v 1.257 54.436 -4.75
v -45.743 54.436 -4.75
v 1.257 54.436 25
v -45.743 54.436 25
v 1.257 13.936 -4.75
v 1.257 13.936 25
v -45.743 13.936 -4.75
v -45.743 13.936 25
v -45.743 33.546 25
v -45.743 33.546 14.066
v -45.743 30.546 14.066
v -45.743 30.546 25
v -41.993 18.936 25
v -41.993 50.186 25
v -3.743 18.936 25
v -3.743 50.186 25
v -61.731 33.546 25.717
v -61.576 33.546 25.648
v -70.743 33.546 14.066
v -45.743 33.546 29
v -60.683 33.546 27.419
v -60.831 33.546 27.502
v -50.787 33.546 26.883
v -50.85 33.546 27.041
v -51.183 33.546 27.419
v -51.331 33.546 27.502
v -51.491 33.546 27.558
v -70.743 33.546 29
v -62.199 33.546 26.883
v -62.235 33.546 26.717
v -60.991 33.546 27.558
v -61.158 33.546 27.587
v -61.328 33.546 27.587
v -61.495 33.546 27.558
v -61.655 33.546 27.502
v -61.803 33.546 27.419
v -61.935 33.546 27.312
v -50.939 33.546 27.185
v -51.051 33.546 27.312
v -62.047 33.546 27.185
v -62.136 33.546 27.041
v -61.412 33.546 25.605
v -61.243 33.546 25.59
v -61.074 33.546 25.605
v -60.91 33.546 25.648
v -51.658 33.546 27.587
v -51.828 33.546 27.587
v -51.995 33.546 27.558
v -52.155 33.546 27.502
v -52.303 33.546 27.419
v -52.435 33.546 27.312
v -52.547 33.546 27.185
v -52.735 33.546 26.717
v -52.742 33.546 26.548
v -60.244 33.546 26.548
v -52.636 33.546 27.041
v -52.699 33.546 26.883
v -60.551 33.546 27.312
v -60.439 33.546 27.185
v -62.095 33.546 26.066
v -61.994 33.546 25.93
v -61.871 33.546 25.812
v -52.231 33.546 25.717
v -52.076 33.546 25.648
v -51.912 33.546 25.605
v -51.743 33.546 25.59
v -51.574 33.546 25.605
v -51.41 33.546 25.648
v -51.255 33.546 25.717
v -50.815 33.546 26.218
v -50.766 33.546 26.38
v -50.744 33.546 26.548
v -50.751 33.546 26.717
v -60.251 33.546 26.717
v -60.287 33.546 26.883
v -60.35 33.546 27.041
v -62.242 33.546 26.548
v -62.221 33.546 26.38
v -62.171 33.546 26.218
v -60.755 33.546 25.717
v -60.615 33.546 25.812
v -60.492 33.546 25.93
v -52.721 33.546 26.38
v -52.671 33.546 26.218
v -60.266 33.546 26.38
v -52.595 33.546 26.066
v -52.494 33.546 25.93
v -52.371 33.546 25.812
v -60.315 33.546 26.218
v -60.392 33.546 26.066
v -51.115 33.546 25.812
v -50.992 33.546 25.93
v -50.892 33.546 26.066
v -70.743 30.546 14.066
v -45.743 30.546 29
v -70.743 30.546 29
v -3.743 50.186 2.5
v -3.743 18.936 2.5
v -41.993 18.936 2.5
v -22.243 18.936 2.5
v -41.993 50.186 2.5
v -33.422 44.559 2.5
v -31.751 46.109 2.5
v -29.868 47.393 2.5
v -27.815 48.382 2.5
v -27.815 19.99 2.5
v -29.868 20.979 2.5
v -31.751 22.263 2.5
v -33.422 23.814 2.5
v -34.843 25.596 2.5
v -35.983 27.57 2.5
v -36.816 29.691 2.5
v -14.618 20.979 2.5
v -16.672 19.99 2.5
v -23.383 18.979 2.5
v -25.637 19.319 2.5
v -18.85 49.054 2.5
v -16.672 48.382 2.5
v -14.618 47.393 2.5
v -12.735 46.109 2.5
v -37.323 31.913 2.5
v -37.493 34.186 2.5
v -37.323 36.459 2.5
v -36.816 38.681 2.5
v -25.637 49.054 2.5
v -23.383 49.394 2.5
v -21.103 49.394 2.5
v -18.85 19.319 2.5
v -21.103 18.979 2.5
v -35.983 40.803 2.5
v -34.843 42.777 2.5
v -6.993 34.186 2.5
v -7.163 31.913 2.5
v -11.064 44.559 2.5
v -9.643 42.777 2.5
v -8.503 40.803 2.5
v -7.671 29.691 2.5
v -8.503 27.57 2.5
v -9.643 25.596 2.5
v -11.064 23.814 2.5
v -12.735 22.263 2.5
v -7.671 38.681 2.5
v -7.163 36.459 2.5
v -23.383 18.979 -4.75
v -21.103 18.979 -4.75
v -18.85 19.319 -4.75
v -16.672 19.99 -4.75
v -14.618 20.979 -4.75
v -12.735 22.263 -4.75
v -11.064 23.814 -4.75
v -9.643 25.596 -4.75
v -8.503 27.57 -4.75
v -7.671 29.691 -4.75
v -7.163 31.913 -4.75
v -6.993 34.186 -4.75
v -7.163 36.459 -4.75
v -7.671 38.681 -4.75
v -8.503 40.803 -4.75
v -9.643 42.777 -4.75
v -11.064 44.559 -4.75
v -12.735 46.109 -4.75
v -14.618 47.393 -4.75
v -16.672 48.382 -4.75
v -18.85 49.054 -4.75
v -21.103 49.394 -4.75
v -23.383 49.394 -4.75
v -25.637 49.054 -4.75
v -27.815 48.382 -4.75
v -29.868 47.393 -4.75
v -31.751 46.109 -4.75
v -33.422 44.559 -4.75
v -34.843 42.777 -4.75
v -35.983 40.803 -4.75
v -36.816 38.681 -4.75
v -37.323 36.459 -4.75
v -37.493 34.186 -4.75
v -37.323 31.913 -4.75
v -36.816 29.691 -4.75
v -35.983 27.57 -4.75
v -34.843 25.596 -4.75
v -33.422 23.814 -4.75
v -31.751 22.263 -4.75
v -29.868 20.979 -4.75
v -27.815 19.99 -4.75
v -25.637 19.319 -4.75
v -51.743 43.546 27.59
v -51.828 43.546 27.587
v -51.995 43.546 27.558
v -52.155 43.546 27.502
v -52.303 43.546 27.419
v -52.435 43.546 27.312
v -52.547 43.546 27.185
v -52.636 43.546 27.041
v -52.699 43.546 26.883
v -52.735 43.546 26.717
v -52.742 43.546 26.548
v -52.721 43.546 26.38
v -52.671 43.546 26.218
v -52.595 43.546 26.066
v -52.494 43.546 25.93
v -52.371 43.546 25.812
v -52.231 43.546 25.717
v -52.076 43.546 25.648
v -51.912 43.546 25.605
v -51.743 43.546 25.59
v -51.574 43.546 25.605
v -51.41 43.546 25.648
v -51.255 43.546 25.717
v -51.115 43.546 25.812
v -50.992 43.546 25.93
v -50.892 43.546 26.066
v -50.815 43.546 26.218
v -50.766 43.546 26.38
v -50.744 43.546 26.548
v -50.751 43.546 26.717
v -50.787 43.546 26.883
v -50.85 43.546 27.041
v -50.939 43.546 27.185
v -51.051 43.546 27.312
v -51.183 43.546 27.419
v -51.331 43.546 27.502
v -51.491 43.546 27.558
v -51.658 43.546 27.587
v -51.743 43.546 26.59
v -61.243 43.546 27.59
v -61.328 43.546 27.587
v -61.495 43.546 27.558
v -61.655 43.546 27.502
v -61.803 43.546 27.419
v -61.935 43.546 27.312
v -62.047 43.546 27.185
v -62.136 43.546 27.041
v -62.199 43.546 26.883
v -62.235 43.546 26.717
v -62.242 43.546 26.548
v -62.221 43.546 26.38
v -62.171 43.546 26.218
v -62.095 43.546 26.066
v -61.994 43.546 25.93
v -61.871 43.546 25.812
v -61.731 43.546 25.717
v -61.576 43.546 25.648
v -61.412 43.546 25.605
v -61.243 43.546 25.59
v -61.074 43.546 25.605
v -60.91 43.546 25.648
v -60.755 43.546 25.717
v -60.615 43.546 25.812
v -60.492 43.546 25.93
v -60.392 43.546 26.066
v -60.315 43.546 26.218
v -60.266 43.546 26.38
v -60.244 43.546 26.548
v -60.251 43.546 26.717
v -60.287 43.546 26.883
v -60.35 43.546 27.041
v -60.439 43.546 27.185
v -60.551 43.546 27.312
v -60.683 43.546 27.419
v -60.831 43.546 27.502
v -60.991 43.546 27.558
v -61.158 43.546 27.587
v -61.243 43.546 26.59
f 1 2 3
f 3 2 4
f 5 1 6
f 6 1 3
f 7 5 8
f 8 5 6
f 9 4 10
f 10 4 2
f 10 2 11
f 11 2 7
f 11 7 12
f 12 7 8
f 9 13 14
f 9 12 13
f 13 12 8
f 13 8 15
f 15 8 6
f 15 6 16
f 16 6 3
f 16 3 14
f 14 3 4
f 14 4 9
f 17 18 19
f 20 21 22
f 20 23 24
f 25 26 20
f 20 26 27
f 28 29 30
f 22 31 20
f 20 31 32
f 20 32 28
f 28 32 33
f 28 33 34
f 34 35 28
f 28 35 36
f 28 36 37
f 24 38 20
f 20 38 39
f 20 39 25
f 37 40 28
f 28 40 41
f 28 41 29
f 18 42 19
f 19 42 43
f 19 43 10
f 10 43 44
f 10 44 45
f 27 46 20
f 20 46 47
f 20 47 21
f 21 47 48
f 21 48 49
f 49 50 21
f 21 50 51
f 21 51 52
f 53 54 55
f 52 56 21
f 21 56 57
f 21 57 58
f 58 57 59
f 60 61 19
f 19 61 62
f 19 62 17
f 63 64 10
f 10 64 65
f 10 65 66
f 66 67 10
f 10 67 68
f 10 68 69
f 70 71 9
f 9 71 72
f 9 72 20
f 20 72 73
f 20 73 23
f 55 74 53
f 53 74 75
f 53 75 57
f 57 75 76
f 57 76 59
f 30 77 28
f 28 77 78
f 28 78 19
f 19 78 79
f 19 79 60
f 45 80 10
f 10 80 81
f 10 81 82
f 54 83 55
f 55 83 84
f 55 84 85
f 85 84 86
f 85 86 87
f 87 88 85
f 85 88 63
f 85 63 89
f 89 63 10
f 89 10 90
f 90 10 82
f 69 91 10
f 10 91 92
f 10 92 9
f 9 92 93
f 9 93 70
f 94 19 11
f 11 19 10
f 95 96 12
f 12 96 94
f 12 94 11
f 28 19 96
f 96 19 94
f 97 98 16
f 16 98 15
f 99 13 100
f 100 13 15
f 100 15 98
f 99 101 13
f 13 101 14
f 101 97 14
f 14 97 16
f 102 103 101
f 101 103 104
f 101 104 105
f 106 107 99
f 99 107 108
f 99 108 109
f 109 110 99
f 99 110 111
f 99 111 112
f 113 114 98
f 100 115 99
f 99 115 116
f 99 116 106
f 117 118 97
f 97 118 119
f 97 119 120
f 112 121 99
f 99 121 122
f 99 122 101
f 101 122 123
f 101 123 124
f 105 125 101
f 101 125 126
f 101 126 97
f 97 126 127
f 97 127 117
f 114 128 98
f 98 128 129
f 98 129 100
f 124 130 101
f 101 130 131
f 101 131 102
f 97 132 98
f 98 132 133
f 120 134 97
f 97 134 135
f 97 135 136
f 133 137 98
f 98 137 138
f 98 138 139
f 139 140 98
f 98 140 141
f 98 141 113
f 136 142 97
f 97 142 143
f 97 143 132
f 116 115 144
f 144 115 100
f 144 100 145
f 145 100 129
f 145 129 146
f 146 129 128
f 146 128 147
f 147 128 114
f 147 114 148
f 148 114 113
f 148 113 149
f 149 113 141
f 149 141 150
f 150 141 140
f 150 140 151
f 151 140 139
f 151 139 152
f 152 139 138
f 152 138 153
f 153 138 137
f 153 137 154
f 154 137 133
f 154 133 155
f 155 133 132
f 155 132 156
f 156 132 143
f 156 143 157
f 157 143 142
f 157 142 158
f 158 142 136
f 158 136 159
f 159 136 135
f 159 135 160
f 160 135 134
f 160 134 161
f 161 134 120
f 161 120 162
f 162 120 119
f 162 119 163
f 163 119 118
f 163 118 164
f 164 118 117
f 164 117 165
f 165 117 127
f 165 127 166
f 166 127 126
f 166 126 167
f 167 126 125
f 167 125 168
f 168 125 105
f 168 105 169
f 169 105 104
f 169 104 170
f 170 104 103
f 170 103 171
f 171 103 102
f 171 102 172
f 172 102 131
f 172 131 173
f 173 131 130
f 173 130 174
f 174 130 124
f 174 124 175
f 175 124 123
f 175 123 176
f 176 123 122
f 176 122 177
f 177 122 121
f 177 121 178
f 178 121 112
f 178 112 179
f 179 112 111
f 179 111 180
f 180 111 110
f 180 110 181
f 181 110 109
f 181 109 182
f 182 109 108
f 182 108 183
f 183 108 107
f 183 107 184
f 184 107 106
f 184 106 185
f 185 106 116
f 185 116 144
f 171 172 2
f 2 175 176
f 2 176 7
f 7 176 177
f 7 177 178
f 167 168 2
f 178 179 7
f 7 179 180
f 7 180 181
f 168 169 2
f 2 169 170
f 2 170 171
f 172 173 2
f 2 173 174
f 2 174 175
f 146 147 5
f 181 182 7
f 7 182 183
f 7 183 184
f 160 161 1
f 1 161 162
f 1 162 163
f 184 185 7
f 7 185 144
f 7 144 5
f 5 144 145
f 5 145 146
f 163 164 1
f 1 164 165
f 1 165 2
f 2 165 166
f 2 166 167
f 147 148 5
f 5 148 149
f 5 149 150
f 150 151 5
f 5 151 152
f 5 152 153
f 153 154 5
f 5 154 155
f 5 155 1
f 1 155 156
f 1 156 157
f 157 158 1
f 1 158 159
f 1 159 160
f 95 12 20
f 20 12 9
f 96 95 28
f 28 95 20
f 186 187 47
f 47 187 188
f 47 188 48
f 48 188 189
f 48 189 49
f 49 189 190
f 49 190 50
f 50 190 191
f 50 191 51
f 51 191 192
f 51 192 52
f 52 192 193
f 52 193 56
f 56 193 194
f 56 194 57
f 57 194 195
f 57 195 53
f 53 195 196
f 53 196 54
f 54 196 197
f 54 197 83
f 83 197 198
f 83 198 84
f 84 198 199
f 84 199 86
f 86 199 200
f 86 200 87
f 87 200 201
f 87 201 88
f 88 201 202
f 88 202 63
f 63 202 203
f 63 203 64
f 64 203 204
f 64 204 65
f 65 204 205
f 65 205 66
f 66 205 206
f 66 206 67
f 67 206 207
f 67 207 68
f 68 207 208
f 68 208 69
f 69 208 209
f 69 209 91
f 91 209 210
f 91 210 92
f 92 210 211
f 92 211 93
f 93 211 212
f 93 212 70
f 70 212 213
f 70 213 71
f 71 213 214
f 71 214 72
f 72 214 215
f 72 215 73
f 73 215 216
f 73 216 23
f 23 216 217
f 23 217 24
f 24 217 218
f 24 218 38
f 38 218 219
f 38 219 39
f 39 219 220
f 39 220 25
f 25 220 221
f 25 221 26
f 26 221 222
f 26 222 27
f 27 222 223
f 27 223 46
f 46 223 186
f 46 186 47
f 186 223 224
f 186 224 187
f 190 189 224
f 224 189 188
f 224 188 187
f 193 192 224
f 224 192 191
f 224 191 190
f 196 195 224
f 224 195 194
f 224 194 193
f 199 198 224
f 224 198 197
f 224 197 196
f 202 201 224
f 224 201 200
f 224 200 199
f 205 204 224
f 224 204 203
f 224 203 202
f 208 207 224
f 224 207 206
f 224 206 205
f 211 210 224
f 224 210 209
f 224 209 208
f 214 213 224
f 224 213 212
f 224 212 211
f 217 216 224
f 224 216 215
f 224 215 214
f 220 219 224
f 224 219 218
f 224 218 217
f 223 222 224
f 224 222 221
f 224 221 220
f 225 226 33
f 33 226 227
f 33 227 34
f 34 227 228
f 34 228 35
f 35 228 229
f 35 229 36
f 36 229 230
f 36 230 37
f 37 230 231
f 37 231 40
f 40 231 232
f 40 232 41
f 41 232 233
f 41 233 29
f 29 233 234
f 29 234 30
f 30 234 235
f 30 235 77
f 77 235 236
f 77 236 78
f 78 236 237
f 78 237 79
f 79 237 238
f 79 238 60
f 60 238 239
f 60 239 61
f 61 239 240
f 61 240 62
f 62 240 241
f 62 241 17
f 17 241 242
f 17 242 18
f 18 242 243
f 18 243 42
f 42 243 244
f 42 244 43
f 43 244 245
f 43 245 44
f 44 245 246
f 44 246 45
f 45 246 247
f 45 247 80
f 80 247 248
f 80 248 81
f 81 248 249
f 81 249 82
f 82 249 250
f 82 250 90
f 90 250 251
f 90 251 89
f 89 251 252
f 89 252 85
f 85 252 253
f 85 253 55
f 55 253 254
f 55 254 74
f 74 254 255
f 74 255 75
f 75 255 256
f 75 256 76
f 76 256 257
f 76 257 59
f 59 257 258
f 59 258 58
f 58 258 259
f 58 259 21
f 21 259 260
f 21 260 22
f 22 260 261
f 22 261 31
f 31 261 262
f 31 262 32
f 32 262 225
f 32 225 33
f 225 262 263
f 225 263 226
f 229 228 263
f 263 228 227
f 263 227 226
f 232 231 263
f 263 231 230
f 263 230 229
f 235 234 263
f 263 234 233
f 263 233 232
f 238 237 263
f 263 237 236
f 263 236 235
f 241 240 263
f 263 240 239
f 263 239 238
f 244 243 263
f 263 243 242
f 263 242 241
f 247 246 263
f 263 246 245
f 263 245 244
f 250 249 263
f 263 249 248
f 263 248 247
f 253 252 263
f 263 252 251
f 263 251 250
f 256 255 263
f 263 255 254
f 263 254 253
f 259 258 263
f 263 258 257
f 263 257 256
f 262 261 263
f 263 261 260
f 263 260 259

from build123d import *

# Parameters (mm, degrees)
CROQUIS1_W              = 47
CROQUIS1_H              = 40.5
SALIENTE_EXTRUIR1_DEPTH = 25
CROQUIS2_W              = 10.933851529
CROQUIS2_H              = 3
SALIENTE_EXTRUIR2_DEPTH = 25
CROQUIS3_W              = 38.25
CROQUIS3_H              = 31.25
CORTAR_EXTRUIR1_DEPTH   = 22.5
CROQUIS6_R              = 15.25
CORTAR_EXTRUIR2_DEPTH   = 10
SALIENTE_EXTRUIR5_START = 4.75
CROQUIS7_W              = 47
CROQUIS7_H              = 40.5
CROQUIS7_R              = 15.25
SALIENTE_EXTRUIR5_DEPTH = 4.75
CROQUIS8_W              = 25
CROQUIS8_H              = 4
SALIENTE_EXTRUIR6_DEPTH = 3
CROQUIS9_R              = 1
SALIENTE_EXTRUIR7_DEPTH = 10


with BuildPart() as part:
    # Croquis1 → Saliente-Extruir1 (new body)
    with BuildSketch(Plane.XY.offset(25)):
        with Locations((-22.24307249, 34.18630066)):
            Rectangle(CROQUIS1_W, CROQUIS1_H)
    extrude(amount=-SALIENTE_EXTRUIR1_DEPTH)

    # Croquis2 → Saliente-Extruir2 (add)
    with BuildSketch(Plane.ZY.offset(45.74307249)):
        with Locations((19.533074236, 32.04630066)):
            Rectangle(CROQUIS2_W, CROQUIS2_H)
    extrude(amount=SALIENTE_EXTRUIR2_DEPTH)

    # Croquis3 → Cortar-Extruir1 (cut)
    with BuildSketch(Plane.XY.offset(25)):
        with Locations((-22.86807249, 34.56130066)):
            Rectangle(CROQUIS3_W, CROQUIS3_H)
    extrude(amount=-CORTAR_EXTRUIR1_DEPTH, mode=Mode.SUBTRACT)

    # Croquis6 → Cortar-Extruir2 (cut)
    with BuildSketch(Plane(origin=(0, 0, 0), x_dir=(-1, 0, 0), z_dir=(0, 0, -1))):
        with Locations((22.24307249, 34.18630066)):
            Circle(CROQUIS6_R)
    extrude(amount=-CORTAR_EXTRUIR2_DEPTH, mode=Mode.SUBTRACT)

    # Croquis7 → Saliente-Extruir5 (add)
    with BuildSketch(Plane(origin=(0, 0, 0), x_dir=(-1, 0, 0), z_dir=(0, 0, -1)).offset(SALIENTE_EXTRUIR5_START)):
        with Locations((22.24307249, 34.18630066)):
            Rectangle(CROQUIS7_W, CROQUIS7_H)
        with Locations((22.24307249, 34.18630066)):
            Circle(CROQUIS7_R, mode=Mode.SUBTRACT)
    extrude(amount=-SALIENTE_EXTRUIR5_DEPTH)

    # Croquis8 → Saliente-Extruir6 (add)
    with BuildSketch(Plane(origin=(0, 33.54630066, 0), x_dir=(1, 0, 0), z_dir=(0, 1, 0))):
        with Locations((-58.24307249, -27)):
            Rectangle(CROQUIS8_W, CROQUIS8_H)
    extrude(amount=-SALIENTE_EXTRUIR6_DEPTH)

    # Croquis9 → Saliente-Extruir7 (add)
    with BuildSketch(Plane(origin=(0, 33.54630066, 0), x_dir=(1, 0, 0), z_dir=(0, 1, 0))):
        with Locations(Location((-61.24307249, -26.590447053, 0), (0, 0, 90))):
            Circle(CROQUIS9_R)
        with Locations(Location((-51.74307249, -26.590447053, 0), (0, 0, 90))):
            Circle(CROQUIS9_R)
    extrude(amount=SALIENTE_EXTRUIR7_DEPTH)


solid = part.part
